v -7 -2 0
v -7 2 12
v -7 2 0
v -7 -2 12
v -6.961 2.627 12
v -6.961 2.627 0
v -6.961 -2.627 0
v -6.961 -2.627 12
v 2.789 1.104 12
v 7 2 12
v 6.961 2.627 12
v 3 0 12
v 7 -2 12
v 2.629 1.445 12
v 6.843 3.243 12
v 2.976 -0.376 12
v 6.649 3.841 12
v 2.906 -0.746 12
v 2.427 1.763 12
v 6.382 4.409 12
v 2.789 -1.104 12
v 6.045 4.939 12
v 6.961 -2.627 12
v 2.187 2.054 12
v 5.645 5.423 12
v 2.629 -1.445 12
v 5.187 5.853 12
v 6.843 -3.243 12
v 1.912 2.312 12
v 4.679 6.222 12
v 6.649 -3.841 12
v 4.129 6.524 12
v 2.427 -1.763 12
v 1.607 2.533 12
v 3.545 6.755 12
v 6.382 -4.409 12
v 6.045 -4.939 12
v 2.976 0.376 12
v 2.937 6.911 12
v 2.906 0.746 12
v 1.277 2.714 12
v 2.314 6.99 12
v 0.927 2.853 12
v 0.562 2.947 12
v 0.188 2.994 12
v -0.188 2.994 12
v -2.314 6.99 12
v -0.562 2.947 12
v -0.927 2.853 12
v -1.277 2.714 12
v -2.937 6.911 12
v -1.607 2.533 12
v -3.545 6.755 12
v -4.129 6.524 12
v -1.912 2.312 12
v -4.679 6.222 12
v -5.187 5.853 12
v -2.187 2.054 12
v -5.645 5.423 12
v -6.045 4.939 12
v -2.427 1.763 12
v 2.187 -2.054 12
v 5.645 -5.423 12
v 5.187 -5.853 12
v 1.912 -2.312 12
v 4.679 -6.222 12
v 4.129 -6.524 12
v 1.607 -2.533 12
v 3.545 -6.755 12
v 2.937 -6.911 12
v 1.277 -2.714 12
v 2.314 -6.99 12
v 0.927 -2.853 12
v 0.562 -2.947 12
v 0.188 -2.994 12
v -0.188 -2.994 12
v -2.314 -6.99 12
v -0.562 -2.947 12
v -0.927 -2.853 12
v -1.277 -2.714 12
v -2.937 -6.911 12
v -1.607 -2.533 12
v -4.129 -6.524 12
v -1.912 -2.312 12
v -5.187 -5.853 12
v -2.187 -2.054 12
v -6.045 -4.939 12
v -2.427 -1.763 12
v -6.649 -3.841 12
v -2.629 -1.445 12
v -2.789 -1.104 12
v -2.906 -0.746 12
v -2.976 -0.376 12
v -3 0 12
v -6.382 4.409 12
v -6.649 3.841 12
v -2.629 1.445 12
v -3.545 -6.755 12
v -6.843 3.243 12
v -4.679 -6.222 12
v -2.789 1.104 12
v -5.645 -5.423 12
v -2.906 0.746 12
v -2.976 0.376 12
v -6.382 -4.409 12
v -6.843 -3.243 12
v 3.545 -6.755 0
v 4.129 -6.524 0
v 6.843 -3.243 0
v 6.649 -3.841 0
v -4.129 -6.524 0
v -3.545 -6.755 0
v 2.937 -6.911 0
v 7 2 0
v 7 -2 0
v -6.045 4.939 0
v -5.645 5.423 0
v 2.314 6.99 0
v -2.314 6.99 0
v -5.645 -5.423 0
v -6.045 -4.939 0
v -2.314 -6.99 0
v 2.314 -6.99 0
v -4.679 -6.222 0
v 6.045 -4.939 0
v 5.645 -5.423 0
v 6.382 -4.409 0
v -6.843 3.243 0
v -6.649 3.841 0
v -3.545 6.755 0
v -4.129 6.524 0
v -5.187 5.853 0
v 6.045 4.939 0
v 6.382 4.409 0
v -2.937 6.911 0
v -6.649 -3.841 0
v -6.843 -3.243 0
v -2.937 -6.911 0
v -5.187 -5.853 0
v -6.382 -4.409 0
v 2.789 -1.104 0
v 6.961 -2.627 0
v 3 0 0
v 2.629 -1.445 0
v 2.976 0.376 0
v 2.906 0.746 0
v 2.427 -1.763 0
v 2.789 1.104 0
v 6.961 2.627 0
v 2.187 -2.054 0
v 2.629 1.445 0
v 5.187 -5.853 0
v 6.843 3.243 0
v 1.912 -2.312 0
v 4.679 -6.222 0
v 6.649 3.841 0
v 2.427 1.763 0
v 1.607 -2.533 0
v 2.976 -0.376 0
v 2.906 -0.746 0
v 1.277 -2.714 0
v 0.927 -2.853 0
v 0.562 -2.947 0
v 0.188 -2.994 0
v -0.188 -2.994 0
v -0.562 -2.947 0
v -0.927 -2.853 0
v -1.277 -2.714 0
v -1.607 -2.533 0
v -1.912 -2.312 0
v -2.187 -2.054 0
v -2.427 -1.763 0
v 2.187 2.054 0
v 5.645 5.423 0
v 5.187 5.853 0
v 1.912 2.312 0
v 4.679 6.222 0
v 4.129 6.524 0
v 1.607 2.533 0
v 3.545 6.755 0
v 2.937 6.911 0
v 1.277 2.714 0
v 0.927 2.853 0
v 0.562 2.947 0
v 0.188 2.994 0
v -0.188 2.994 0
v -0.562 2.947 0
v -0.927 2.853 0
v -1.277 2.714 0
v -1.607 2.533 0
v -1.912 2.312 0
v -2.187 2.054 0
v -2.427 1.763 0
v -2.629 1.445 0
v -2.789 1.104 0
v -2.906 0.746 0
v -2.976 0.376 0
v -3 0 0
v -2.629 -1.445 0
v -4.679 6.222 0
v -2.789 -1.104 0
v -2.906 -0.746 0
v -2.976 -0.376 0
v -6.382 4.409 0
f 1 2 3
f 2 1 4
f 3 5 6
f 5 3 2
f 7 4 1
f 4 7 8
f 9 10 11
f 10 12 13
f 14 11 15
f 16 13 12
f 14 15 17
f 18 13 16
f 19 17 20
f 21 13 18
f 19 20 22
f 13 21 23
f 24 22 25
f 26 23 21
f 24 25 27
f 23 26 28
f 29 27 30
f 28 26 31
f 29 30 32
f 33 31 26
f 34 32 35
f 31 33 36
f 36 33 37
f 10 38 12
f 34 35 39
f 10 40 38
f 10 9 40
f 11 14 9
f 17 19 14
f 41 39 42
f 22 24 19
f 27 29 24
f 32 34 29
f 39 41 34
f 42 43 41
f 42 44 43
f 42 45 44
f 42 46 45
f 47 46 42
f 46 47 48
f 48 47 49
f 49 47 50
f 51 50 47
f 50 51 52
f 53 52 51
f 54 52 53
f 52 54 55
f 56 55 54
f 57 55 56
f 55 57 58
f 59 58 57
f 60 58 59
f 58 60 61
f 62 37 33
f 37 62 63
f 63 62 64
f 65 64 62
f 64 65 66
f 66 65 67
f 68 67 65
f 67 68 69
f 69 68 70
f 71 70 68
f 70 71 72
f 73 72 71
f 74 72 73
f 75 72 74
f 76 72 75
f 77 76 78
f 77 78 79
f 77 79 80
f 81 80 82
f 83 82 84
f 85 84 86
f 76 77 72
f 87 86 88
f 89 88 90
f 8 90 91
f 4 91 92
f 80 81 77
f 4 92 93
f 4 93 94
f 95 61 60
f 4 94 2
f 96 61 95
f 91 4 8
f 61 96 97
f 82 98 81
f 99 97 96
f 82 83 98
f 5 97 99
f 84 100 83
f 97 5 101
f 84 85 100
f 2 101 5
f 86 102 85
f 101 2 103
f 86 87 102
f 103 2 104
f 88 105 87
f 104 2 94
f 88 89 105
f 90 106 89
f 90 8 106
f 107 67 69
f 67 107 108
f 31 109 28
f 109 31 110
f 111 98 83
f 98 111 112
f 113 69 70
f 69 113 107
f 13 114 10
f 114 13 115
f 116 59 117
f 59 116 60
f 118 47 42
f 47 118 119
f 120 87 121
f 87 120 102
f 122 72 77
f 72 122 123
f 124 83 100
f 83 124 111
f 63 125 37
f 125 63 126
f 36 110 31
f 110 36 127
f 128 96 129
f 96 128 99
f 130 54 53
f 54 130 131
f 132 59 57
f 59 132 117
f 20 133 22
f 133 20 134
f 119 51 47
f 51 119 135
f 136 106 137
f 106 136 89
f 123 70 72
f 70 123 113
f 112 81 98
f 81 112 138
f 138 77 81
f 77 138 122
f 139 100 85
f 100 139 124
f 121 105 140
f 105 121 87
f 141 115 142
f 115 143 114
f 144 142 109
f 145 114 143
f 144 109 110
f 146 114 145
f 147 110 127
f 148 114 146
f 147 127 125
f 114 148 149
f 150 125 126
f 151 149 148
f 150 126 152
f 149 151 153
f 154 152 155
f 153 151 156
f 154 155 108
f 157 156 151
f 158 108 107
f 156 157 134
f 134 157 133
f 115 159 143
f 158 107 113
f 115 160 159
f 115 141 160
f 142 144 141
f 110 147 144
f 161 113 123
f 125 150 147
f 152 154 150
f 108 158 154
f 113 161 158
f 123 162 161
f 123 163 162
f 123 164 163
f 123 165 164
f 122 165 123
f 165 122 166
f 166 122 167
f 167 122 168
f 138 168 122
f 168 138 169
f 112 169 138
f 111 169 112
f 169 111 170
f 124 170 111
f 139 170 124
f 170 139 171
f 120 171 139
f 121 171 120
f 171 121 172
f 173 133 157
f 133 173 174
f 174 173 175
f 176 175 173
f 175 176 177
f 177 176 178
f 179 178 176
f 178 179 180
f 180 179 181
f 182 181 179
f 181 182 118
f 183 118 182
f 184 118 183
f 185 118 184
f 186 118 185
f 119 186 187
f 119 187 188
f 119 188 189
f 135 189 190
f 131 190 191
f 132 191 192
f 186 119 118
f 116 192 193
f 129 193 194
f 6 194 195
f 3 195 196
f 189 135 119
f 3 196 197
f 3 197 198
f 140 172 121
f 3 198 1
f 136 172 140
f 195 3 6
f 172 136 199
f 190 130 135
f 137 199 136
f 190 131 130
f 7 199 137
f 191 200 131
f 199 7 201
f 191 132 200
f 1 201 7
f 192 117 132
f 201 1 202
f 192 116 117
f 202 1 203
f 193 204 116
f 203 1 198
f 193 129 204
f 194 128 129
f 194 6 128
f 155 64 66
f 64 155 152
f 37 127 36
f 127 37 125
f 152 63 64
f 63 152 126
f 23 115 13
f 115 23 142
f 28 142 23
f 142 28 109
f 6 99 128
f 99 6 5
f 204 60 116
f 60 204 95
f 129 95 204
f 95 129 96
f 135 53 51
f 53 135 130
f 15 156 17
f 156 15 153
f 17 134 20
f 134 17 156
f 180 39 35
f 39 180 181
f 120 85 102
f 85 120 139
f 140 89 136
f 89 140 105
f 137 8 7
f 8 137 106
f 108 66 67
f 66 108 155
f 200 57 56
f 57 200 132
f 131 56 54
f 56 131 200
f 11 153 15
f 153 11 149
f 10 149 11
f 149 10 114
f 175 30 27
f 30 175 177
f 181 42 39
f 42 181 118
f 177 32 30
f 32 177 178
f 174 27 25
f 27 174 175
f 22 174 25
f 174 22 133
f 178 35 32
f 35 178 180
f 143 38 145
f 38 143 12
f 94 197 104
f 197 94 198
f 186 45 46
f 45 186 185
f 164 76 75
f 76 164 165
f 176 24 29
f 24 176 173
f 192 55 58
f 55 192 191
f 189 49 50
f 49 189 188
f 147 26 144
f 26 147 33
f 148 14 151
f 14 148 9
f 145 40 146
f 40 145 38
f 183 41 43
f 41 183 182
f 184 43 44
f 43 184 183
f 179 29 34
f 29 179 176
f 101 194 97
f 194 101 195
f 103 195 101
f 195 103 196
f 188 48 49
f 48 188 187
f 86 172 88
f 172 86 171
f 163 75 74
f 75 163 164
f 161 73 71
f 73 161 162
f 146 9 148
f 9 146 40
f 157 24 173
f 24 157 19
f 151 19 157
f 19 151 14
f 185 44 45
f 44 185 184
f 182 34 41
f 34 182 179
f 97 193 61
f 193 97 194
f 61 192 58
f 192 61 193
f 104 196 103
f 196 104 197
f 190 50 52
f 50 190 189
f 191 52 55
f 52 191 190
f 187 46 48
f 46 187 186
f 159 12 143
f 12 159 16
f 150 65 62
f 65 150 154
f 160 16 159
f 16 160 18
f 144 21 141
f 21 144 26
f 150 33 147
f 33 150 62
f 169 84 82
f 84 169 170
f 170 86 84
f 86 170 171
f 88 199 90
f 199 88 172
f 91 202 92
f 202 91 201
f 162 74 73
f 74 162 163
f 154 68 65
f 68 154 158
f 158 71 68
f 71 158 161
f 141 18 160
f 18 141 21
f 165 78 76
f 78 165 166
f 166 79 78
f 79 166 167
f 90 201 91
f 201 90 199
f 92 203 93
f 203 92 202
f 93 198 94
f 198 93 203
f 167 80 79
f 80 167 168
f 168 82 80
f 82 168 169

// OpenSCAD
$fn = 50;


difference() {
	union() {
		translate(v = [0, 0, 0]) {
			rotate(a = [0, 0, 0]) {
				hull() {
					translate(v = [-2.0000000000, 2.0000000000, 0]) {
						rotate(a = [0, 0, 0]) {
							translate(v = [0, 0, 0]) {
								rotate(a = [0, 0, 0]) {
									cylinder(h = 12, r = 5);
								}
							}
						}
					}
					translate(v = [2.0000000000, 2.0000000000, 0]) {
						rotate(a = [0, 0, 0]) {
							translate(v = [0, 0, 0]) {
								rotate(a = [0, 0, 0]) {
									cylinder(h = 12, r = 5);
								}
							}
						}
					}
					translate(v = [-2.0000000000, -2.0000000000, 0]) {
						rotate(a = [0, 0, 0]) {
							translate(v = [0, 0, 0]) {
								rotate(a = [0, 0, 0]) {
									cylinder(h = 12, r = 5);
								}
							}
						}
					}
					translate(v = [2.0000000000, -2.0000000000, 0]) {
						rotate(a = [0, 0, 0]) {
							translate(v = [0, 0, 0]) {
								rotate(a = [0, 0, 0]) {
									cylinder(h = 12, r = 5);
								}
							}
						}
					}
				}
			}
		}
	}
	union() {
		translate(v = [0.0000000000, 0.0000000000, 0]) {
			rotate(a = [0, 0, 0]) {
				translate(v = [0, 0, -50]) {
					rotate(a = [0, 0, 0]) {
						cylinder(h = 100, r = 3.0000000000);
					}
				}
			}
		}
	}
}
